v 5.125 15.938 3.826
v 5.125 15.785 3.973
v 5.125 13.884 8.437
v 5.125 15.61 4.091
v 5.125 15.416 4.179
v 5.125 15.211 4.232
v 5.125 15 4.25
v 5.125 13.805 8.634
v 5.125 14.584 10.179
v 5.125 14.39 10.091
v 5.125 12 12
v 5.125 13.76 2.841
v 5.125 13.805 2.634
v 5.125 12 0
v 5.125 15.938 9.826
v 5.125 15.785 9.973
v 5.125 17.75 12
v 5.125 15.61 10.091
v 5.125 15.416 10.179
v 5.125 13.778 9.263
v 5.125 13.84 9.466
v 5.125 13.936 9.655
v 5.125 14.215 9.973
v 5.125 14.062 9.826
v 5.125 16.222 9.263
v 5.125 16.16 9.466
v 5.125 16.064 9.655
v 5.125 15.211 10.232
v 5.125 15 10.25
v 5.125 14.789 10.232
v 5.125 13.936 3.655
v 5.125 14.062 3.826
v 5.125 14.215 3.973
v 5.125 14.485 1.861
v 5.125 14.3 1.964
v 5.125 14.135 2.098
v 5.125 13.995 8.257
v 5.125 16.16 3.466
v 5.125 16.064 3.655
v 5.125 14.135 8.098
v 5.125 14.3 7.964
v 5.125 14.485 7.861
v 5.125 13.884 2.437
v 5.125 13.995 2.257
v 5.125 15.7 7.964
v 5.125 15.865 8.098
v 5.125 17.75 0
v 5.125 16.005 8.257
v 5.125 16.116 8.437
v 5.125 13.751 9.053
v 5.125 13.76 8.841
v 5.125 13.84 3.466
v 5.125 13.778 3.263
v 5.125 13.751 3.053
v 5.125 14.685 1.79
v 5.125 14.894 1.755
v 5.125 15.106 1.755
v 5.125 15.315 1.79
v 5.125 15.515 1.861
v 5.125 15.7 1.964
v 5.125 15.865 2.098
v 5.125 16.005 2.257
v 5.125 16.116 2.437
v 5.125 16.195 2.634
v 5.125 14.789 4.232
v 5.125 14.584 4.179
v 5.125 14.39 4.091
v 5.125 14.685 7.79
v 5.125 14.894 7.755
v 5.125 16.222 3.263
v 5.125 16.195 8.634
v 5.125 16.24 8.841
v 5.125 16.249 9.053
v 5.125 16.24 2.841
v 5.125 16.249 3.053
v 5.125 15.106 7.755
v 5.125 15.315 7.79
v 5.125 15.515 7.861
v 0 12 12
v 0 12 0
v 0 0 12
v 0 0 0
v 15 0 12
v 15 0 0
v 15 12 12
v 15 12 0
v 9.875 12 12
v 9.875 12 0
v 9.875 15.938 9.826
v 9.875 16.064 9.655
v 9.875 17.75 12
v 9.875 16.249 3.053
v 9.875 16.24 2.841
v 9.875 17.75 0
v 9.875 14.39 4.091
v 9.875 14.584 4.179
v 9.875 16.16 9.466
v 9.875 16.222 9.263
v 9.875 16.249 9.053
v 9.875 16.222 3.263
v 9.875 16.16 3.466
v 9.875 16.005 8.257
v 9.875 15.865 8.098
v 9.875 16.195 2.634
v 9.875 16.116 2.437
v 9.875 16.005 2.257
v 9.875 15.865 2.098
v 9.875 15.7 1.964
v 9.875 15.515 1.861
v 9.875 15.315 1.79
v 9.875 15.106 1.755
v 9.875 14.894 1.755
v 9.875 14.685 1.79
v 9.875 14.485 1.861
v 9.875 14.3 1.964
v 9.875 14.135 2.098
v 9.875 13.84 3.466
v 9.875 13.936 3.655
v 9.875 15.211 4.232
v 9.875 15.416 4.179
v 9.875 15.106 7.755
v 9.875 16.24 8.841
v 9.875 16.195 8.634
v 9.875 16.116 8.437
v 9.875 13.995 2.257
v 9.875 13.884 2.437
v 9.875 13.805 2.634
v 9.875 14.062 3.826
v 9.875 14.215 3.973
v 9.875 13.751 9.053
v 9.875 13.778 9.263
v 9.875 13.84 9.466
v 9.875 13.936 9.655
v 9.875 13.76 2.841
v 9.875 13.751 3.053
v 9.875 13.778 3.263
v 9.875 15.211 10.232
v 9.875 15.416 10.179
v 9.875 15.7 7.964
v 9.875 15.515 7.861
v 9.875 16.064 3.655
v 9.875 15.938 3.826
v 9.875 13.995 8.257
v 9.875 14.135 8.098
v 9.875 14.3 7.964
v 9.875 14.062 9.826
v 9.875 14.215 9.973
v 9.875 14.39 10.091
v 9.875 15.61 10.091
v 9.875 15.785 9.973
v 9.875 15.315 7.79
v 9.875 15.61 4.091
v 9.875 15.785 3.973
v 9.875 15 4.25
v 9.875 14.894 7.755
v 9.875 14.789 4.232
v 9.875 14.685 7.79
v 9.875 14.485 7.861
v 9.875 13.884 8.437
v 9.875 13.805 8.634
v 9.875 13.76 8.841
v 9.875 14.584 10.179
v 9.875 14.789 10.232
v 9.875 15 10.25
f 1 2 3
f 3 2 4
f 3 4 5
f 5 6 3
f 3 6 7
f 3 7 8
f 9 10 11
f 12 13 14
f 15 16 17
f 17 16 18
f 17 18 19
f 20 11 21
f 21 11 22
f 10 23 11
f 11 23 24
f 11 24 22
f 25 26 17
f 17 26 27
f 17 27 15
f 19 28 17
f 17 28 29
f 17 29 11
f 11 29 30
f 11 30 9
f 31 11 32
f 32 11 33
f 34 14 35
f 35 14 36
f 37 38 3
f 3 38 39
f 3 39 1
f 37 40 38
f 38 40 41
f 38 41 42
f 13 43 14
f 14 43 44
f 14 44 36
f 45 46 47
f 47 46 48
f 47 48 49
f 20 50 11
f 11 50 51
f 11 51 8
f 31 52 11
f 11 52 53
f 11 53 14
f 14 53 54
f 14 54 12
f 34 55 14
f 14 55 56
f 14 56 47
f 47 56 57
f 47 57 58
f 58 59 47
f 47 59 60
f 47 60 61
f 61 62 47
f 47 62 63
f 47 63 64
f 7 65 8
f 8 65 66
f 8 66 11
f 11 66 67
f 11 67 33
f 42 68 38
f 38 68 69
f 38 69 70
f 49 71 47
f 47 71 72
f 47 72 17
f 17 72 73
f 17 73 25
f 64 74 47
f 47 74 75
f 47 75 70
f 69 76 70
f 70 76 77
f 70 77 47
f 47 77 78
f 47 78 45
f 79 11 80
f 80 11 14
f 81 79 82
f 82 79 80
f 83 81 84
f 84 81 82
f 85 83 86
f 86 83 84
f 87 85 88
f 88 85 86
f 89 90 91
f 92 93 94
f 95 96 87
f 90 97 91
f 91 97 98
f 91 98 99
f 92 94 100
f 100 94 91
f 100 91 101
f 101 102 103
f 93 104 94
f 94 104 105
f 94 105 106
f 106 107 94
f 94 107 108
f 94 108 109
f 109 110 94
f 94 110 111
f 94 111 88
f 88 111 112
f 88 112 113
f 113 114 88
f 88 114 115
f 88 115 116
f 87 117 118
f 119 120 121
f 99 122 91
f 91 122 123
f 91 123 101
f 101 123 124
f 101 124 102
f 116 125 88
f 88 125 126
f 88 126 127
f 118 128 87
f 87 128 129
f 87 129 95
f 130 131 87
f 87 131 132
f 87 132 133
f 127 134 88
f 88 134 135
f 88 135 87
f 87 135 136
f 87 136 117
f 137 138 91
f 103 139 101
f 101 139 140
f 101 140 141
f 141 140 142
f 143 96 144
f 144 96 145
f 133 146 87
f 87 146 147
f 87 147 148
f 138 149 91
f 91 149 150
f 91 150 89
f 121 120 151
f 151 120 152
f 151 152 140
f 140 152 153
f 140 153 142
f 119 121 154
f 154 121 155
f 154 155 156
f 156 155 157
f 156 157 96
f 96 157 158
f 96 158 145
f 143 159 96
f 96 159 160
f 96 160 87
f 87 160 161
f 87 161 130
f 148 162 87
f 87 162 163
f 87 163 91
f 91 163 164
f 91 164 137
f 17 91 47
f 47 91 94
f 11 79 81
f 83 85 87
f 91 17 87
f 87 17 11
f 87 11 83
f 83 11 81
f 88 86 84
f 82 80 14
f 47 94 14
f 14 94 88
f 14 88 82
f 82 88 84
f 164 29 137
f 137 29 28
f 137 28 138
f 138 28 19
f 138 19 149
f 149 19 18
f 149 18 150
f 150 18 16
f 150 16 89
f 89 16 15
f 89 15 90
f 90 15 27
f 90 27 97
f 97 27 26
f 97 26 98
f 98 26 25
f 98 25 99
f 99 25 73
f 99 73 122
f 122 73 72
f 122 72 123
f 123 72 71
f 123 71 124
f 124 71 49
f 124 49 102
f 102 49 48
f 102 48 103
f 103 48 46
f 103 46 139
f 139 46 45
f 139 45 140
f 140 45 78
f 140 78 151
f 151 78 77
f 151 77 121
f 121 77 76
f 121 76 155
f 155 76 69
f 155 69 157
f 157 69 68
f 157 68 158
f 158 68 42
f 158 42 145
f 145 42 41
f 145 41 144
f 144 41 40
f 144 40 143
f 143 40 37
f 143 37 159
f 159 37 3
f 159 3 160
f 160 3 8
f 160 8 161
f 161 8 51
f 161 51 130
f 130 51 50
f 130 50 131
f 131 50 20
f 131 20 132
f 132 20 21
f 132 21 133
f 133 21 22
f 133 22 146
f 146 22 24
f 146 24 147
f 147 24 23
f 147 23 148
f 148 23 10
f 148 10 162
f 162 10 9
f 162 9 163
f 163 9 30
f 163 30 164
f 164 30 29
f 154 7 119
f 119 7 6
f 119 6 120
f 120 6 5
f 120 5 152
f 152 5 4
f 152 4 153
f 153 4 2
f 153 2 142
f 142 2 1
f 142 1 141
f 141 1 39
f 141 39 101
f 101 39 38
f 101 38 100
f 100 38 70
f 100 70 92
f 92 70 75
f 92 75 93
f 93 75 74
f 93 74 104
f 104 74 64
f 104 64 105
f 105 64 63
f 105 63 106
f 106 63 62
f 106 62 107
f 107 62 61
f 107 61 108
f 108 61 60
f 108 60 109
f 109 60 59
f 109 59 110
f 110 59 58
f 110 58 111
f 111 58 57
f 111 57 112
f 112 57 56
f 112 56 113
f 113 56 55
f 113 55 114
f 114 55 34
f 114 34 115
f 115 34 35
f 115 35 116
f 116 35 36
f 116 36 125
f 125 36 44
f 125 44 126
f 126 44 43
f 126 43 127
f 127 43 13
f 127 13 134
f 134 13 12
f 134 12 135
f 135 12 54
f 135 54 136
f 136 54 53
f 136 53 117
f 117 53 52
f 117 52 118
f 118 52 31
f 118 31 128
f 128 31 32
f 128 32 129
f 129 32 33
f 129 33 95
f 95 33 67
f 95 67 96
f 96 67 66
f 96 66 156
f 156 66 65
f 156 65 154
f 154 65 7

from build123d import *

# Parameters (mm, degrees)
SKETCH1_W           = 4.75
SKETCH1_H           = 5.75
SKETCH1_W_2         = 15
SKETCH1_H_2         = 12
BOSS_EXTRUDE1_DEPTH = 12
SKETCH2_R           = 1.25
CUT_EXTRUDE1_DEPTH  = 10


with BuildPart() as part:
    # Sketch1 → Boss-Extrude1 (new body)
    with BuildSketch(Plane.XY):
        with Locations((7.5, 14.875)):
            Rectangle(SKETCH1_W, SKETCH1_H)
        with Locations((7.5, 6)):
            Rectangle(SKETCH1_W_2, SKETCH1_H_2)
    extrude(amount=BOSS_EXTRUDE1_DEPTH)

    # Sketch2 → Cut-Extrude1 (cut)
    with BuildSketch(Plane.ZY.offset(-5.125)):
        with Locations((3, 15)):
            Circle(SKETCH2_R)
        with Locations((9, 15)):
            Circle(SKETCH2_R)
    extrude(amount=-CUT_EXTRUDE1_DEPTH, mode=Mode.SUBTRACT)


solid = part.part
